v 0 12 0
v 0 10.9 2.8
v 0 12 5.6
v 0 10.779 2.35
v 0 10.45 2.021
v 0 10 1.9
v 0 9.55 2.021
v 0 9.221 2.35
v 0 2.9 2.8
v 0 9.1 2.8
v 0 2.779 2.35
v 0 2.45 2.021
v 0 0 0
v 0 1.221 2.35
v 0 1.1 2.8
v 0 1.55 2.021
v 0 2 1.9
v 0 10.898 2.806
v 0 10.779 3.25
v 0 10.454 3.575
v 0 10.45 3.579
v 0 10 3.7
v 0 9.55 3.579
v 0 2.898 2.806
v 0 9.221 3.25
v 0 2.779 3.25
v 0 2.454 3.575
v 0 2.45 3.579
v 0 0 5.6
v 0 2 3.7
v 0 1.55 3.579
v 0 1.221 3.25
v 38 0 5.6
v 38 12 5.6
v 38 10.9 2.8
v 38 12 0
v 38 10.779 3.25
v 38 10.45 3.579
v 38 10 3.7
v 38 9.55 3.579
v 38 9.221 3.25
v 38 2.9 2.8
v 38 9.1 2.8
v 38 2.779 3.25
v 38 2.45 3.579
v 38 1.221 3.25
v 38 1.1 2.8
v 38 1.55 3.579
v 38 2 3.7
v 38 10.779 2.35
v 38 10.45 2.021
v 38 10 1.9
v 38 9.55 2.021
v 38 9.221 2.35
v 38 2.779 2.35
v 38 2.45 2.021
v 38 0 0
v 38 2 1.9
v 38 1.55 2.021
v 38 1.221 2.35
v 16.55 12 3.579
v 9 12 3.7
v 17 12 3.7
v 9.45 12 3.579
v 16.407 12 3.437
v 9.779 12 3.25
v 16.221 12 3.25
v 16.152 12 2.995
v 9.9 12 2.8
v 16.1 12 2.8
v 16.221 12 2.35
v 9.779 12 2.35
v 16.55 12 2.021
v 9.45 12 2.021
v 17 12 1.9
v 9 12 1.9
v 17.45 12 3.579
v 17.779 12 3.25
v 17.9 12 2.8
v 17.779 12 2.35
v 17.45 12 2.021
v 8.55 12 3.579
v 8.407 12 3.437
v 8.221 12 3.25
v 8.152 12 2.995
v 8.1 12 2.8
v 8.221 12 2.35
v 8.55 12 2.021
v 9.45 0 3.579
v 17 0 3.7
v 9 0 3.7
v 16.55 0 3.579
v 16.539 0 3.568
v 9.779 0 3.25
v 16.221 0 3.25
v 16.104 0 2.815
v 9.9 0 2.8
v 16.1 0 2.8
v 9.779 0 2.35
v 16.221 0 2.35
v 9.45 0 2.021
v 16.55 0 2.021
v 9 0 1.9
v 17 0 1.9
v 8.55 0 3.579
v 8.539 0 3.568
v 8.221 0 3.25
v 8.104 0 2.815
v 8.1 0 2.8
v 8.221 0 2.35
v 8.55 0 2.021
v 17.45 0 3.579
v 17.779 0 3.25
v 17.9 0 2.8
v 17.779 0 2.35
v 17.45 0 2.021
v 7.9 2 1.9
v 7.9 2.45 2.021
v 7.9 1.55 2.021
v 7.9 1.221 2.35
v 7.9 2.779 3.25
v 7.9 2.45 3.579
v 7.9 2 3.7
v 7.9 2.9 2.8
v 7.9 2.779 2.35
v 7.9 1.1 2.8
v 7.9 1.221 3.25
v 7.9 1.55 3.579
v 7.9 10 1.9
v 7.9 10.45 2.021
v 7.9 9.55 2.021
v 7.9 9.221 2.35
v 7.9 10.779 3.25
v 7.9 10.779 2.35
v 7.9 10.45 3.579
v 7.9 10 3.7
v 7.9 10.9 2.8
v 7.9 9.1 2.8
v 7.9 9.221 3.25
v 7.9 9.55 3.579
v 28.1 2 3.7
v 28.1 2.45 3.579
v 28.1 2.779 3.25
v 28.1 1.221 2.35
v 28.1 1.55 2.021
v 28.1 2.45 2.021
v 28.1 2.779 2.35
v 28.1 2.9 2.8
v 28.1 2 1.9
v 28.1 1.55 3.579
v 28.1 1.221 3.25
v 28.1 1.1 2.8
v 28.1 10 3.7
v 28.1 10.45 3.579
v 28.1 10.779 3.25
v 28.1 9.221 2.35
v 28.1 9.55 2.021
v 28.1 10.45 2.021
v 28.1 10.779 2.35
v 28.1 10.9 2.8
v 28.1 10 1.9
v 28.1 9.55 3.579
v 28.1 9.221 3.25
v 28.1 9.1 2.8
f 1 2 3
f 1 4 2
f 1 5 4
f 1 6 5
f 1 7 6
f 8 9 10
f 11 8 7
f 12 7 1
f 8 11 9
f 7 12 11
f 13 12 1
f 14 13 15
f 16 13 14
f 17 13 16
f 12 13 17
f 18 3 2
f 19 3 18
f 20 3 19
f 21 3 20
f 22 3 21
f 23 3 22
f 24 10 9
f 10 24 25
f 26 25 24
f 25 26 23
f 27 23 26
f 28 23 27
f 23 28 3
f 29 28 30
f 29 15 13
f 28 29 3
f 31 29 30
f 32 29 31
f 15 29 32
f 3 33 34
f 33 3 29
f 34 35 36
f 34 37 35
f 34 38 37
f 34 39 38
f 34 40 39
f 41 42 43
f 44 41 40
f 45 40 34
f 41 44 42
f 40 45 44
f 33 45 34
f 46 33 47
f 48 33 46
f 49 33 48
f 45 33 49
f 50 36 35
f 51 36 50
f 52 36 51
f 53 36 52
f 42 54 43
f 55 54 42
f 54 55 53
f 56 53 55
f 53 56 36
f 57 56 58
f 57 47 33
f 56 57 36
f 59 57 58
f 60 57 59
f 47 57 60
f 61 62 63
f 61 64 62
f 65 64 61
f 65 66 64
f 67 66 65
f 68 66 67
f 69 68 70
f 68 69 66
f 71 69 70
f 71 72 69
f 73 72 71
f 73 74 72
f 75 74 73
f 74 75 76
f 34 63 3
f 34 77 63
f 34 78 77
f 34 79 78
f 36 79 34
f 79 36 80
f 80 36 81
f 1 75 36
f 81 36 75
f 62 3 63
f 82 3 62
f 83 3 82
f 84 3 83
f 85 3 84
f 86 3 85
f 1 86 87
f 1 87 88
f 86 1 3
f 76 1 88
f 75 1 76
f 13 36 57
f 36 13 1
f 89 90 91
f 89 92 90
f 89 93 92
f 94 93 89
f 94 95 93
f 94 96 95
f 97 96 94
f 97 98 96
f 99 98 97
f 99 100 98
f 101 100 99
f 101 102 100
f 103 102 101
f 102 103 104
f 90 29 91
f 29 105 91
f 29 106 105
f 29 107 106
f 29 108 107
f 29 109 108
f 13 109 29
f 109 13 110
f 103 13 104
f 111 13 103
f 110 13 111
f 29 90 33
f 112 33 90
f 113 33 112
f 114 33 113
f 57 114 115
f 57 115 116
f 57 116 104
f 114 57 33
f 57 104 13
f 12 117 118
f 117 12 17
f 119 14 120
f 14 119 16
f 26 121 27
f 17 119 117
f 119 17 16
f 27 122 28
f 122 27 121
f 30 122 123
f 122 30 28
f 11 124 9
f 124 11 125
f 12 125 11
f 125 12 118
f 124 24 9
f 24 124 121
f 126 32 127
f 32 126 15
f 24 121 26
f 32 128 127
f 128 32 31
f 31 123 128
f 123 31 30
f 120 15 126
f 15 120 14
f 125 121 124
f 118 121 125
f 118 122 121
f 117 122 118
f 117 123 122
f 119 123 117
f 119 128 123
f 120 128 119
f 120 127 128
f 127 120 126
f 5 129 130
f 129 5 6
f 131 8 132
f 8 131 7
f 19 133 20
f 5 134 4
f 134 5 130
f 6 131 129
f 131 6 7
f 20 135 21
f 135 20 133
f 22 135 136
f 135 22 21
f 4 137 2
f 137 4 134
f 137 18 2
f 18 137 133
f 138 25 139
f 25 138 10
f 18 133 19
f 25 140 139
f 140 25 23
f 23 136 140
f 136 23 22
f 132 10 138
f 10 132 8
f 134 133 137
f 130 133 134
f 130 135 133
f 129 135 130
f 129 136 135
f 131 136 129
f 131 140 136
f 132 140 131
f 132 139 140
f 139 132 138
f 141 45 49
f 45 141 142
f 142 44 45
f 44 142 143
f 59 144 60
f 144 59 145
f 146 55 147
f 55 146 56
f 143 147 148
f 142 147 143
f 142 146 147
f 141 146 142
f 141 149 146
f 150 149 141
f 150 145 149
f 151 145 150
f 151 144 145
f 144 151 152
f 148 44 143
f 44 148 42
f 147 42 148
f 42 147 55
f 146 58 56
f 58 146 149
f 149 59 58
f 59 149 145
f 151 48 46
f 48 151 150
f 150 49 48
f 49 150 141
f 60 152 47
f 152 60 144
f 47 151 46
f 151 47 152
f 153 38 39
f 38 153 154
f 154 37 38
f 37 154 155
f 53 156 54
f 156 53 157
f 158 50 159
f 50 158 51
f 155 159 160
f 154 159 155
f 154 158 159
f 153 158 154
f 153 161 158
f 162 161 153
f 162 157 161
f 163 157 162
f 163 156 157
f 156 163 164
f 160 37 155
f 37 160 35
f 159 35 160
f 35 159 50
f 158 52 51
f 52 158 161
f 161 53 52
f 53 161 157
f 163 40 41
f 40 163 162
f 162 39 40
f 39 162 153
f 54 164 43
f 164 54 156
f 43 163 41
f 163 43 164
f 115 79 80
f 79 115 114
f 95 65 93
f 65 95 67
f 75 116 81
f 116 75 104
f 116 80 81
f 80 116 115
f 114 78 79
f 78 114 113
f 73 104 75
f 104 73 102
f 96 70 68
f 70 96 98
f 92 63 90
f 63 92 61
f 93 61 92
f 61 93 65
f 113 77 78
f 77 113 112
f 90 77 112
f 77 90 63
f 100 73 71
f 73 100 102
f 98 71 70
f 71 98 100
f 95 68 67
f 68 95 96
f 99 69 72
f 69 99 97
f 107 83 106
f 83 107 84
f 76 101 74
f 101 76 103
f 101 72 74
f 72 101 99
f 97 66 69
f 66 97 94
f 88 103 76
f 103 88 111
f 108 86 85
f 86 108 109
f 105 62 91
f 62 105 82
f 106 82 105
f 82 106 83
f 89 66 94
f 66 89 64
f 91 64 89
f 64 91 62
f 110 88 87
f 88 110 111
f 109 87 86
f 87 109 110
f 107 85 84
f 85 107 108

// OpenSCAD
// file: servo_9g.scad
//servo_9g(false);

//use<hub_mount.scad>
use<MCAD/nuts_and_bolts.scad>
$fn = 24;
//x,y,z => l,w,h
servo_l         = 12;
servo_w         = 23;
body_h          = 23;

servo_h         = 27; //not used in code

wing_w          = 5;
wing_h          = 2.33;
wing_place      = 16.2;   
hole_offset     = 2.5;    //not checked
mount_hole_r    = 2/2;
mount_slot      = 1;

servo_ww        = servo_w+wing_w*2; // not used in code but is handy number

hub_h           = 4;
small_hub_r     = 5.68/2;  
horn_r          = 4.66/2;
horn_h          = 3;

wire_l          = 4;
wire_w          = 1.5;
wire_h          = 1;
wire_place      = 4.8;

servo_full_w    = servo_w+wing_w*2;
module servo_9g(hole=true) {
    //if a differnce is applied and you want 
    if(!hole) {
        translate([servo_l/2,-hole_offset,-10]) 
        cylinder(r=mount_hole_r,h=40);
        translate([servo_l/2,hole_offset+servo_w,-10]) 
        cylinder(r=mount_hole_r,h=40);
        /*translate([servo_l/2,servo_l/2,-15])
        cylinder(r=1.5,h=15);*/
        
        /*translate([servo_l/2,servo_l/2,body_h+hub_h+5])
        #hub_mount();*/
    }
    color("white") translate([servo_l/2,servo_l/2,body_h+hub_h])
    cylinder(r=horn_r,h=horn_h);
    
    color("deepSkyBlue",.7) 
    union() {
        cube([servo_l,servo_w,body_h]);
        translate([servo_l/2,servo_l/2,body_h])
        cylinder(r=servo_l/2,h=hub_h);
        translate([servo_l/2,servo_l+small_hub_r/2,body_h])
        cylinder(r=small_hub_r,h=hub_h);
        
        
        translate([0,servo_w,wing_place])
        difference() {
            cube([servo_l,wing_w,wing_h]);
            translate([servo_l/2,hole_offset,0]) 
            cylinder(r=mount_hole_r,h=5);
            translate([servo_l/2-mount_slot/2,hole_offset+mount_hole_r/2,0])
            if(hole) cube([mount_slot,4,3]);
        }
        translate([servo_l,0,wing_place])
        rotate([0,0,180])
        difference() {
            cube([servo_l,wing_w,wing_h]);
            translate([servo_l/2,hole_offset,0]) 
            cylinder(r=mount_hole_r,h=5);
            translate([servo_l/2-mount_slot/2,hole_offset+mount_hole_r/2,0])
            if(hole) cube([mount_slot,4,3]);
        }
    }
    
    /*color("brown") translate([(servo_l-wire_l)/2,-wire_w,wire_place])
    cube([wire_l,wire_w,wire_h]);*/
}
// main file
include<servo_9g.scad>

$fn = 12;

l = 38; 
w = 12;
t = 5.6;

rad = 0.9;
difference() {
    cube([l,w,t]);
    
    translate([-.1,2,t/2])
    rotate([0,90,0])
    cylinder(r=rad, h=8);
    translate([-.1,10,t/2])
    rotate([0,90,0])
    cylinder(r=rad, h=8);
    
    
    translate([.1+l,2,t/2])
    rotate([0,-90,0])
    cylinder(r=rad, h=10);
    translate([.1+l,10,t/2])
    rotate([0,-90,0])
    cylinder(r=rad, h=10);
    
    
    translate([17,-1,t/2])
    rotate([-90,0,0])
    cylinder(r=rad, h=30);
    translate([9,-1,t/2])
    rotate([-90,0,0])
    cylinder(r=rad, h=30);
}
